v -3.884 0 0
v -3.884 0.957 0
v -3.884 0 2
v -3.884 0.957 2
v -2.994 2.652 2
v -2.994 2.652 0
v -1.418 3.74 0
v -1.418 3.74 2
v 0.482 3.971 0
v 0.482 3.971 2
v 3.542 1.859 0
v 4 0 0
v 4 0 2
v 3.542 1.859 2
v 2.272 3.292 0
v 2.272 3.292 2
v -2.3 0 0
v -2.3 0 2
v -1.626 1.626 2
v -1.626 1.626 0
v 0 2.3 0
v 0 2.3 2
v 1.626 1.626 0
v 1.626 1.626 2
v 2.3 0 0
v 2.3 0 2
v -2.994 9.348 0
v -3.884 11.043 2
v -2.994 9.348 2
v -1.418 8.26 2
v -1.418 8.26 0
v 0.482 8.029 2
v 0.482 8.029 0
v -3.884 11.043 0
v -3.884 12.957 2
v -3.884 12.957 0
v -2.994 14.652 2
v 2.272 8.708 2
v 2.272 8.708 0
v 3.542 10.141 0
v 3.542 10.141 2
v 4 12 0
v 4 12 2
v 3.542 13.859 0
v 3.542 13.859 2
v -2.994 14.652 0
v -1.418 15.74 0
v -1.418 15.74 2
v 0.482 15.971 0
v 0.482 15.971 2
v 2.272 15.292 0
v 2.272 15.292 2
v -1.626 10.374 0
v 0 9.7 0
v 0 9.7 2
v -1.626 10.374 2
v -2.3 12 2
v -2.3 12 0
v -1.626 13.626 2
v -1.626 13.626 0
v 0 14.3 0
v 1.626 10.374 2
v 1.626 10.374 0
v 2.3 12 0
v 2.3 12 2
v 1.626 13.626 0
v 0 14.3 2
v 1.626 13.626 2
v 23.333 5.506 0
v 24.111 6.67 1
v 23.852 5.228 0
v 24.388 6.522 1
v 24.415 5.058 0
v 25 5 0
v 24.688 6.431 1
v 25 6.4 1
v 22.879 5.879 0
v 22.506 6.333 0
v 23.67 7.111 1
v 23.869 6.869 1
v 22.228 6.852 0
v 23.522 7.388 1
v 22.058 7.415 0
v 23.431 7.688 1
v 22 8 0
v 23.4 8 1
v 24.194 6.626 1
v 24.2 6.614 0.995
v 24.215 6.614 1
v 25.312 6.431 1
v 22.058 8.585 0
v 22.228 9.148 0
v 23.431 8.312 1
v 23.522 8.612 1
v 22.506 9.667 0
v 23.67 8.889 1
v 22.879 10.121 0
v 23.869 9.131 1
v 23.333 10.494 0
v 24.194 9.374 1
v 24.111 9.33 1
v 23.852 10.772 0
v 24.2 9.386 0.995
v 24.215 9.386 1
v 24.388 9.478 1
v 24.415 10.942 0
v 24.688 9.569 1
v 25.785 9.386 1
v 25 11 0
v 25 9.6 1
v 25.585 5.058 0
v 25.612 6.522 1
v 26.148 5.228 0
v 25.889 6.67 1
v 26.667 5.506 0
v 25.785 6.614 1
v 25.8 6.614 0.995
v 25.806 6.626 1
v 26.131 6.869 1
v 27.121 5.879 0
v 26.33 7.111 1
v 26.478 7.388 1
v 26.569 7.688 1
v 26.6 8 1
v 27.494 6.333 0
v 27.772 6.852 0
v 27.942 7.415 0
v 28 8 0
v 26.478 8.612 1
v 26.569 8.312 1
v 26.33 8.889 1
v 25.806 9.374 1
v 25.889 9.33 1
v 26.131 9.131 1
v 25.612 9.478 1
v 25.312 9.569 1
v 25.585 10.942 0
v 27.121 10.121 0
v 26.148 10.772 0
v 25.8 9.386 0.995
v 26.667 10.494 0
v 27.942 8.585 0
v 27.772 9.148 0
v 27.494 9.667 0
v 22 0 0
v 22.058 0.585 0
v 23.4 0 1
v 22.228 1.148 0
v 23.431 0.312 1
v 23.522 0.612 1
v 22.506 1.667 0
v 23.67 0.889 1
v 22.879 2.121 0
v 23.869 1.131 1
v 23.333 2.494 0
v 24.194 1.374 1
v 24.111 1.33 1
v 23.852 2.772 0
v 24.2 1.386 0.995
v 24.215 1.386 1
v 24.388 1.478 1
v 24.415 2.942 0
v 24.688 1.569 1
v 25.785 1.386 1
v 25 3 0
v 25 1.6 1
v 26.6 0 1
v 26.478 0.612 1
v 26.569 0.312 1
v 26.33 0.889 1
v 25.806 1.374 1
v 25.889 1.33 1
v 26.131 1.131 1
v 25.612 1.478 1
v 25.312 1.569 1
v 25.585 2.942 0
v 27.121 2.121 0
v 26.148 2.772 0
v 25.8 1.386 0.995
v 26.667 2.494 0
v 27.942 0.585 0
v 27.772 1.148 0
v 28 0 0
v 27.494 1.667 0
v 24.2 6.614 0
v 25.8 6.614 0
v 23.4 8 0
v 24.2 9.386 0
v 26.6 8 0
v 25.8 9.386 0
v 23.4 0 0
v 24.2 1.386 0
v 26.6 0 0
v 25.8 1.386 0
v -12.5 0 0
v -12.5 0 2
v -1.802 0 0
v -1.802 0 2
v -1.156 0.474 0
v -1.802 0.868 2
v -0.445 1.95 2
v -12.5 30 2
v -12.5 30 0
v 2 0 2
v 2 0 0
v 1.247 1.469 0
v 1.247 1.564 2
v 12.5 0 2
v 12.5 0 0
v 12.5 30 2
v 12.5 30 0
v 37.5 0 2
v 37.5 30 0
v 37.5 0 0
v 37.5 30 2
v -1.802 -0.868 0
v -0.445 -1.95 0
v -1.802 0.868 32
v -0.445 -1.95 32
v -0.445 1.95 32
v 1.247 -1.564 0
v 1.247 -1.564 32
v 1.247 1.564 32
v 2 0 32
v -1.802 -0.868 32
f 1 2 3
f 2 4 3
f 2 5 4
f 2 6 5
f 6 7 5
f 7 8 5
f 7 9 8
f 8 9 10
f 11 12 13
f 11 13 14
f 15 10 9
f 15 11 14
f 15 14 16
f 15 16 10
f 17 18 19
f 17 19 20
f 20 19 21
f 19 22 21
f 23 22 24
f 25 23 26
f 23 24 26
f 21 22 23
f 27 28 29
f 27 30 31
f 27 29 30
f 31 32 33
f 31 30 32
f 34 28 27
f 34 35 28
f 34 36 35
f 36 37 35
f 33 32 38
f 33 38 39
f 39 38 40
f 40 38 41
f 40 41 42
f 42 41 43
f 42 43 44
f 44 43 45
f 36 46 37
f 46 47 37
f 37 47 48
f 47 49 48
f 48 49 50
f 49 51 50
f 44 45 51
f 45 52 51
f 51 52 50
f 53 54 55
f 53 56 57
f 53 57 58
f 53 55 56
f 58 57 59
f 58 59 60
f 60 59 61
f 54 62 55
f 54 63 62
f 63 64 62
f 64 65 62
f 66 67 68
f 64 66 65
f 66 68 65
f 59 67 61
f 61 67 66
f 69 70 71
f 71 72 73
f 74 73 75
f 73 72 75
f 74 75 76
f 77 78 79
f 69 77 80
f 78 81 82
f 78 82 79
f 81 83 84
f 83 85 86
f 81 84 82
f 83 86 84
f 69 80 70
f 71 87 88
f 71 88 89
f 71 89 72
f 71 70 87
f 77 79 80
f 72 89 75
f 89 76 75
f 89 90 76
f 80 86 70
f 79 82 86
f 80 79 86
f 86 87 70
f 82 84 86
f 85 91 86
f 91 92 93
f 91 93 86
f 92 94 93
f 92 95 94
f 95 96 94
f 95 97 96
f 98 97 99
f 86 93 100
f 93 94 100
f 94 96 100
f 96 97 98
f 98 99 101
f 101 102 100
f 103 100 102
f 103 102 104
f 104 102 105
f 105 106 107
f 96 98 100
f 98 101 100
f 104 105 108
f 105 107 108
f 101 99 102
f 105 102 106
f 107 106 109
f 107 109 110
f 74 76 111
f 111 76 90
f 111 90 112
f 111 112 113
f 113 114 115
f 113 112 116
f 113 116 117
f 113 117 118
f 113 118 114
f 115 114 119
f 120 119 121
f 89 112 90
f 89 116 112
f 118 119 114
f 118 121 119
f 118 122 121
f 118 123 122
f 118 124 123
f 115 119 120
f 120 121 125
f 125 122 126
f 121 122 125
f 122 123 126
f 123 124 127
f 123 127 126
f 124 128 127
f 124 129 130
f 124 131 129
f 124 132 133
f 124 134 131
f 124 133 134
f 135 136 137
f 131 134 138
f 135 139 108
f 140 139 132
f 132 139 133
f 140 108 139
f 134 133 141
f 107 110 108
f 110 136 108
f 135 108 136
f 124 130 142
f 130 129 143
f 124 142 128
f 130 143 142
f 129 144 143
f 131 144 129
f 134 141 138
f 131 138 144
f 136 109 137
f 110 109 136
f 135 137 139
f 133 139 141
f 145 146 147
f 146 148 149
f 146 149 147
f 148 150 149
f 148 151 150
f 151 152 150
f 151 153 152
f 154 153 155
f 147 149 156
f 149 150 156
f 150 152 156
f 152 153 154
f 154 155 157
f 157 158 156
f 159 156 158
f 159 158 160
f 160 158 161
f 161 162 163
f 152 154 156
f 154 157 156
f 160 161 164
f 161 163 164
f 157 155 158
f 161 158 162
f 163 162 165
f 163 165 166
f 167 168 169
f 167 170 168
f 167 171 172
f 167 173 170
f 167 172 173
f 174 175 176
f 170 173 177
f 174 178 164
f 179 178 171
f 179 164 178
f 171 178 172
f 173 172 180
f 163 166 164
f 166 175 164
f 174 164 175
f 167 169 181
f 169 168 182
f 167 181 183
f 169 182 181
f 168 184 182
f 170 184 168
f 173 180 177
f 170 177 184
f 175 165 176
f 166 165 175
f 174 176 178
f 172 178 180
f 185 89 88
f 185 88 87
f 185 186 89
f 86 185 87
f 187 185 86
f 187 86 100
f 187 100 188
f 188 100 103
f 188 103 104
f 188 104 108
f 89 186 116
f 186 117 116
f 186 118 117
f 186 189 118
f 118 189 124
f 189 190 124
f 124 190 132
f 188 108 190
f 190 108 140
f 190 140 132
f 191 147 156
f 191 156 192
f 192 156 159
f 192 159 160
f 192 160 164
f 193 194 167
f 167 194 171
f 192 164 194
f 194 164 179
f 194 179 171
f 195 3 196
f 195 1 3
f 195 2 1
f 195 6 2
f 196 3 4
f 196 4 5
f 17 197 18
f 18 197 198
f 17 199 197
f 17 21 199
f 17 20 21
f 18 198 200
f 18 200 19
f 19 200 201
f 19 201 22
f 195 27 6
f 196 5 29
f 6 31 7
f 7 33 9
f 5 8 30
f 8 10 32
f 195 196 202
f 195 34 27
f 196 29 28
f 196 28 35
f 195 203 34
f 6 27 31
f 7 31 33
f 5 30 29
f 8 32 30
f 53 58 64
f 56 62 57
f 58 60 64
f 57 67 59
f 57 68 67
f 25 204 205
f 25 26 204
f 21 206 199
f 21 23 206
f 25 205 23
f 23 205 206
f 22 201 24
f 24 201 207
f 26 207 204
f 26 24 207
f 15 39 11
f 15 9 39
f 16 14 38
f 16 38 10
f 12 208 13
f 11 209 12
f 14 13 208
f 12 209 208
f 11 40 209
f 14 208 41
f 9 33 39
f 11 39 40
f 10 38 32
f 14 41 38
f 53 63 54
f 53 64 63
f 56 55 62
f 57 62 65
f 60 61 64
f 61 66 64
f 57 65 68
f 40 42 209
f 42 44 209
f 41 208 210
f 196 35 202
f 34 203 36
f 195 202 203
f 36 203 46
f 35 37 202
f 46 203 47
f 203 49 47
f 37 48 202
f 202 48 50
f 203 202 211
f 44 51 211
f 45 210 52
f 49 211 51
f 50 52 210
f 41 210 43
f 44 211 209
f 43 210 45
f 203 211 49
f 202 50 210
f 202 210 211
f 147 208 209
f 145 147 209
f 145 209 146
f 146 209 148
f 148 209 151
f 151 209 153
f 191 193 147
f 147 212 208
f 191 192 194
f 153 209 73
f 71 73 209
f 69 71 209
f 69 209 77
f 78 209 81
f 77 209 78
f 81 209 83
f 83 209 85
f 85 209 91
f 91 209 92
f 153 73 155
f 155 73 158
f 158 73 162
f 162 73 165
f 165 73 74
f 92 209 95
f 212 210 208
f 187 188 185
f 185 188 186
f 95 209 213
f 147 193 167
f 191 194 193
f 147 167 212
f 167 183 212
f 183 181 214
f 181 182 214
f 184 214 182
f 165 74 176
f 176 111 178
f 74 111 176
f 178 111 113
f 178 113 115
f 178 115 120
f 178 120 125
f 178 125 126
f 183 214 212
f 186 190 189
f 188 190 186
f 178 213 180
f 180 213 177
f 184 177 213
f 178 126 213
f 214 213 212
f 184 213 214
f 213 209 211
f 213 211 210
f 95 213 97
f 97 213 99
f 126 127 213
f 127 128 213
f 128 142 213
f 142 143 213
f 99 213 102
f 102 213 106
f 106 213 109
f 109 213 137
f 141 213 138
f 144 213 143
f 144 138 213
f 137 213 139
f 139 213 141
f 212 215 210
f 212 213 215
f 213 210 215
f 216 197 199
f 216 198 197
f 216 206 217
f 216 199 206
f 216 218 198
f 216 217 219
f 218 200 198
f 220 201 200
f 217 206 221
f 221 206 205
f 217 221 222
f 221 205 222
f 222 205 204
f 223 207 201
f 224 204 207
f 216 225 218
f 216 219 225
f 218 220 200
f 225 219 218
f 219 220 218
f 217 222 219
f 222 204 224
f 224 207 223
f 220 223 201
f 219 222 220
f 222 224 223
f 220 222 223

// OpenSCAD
// 家具用小型バット蝶番 (180°開き)
// 3 パーツ構成：左板、右板、ピン軸

// 共通モジュール：筒部 (knuckle)
// Y 軸位置を引数に受け取り、ピン軸位置 (X=0) に配置
module knuckle(y_pos) {
    // 筒部は板の厚さ (2mm) に沿う
    // 外径 8mm, 内径 4.6mm (半径 2.3mm)
    // 位置：X=0 (軸心)
    difference() {
        union() {
            // 筒部本体
            translate([0, y_pos, 0]) cylinder(h = 2, r = 4);
        }
        // ピン穴 (半径 2.3mm)
        translate([0, y_pos, 0]) cylinder(h = 2, r = 2.3);
    }
}

module hinge_part_left() {
    // 左板
    // 板厚 2mm (Z 軸), 縦 30mm (Y 軸), 横 25mm (X 軸)
    // 位置：X < 0 側 (ピン軸中心から左へ 25mm)
    // 板の中心：X = -12.5, Y = 0
    difference() {
        // 板本体
        translate([-12.5, 0, 0]) cube([25, 30, 2]);
        
        // 筒部 (knuckle) 3 つ
        // 左板：外側 2 個 + 中央 1 個
        // Y 軸 30mm (中心 0) -> 範囲 -15 ~ 15
        // 5 等分 (各 6mm) -> 位置 -12, -6, 0, 6, 12
        // 左板の筒部：-12, 0, 12
        for (y = [-12, 0, 12]) {
            knuckle(y);
        }
        
        // M3 皿穴 3 つ
        // 位置：板の端 (X = -25mm)
        // Y 軸方向ピッチ 8mm
        // 中心対称配置 (板の中心 Y=0) -> Y = -8, 0, 8
        for (y = [-8, 0, 8]) {
            // 皿穴：表面から直径 6mm x 深さ 1mm テーパ + 直径 3.2mm 貫通穴
            translate([-25, y, 0]) {
                difference() {
                    cylinder(h = 1, r = 3, r2 = 1.6, $fn = 32);
                    cylinder(h = 2, r = 1.6);
                }
            }
        }
    }
}

module hinge_part_right() {
    // 右板
    // 板厚 2mm, 縦 30mm, 横 25mm
    // 位置：X > 0 側 (ピン軸中心から右へ 25mm)
    // 板の中心：X = 12.5, Y = 0
    difference() {
        // 板本体
        translate([12.5, 0, 0]) cube([25, 30, 2]);
        
        // 筒部 (knuckle) 2 つ
        // 右板：中間 2 個
        // Y 軸位置：-6, 6
        for (y = [-6, 6]) {
            knuckle(y);
        }
        
        // M3 皿穴 3 つ (右板にも 3 つの穴が必要)
        // 位置：板の端 (X = 25mm)
        // Y 軸方向ピッチ 8mm
        // 中心対称配置
        for (y = [-8, 0, 8]) {
            translate([25, y, 0]) {
                difference() {
                    cylinder(h = 1, r = 3, r2 = 1.6, $fn = 32);
                    cylinder(h = 2, r = 1.6);
                }
            }
        }
    }
}

module hinge_pin() {
    // ピン軸
    // 直径 4mm, 長さ 32mm
    // 両端 1mm ずつ筒部から飛び出す (筒部範囲 -12~12, ピン -16~16)
    translate([0, 0, 0]) cylinder(h = 32, r = 2);
}

union() {
    hinge_part_left();
    hinge_part_right();
    hinge_pin();
}
